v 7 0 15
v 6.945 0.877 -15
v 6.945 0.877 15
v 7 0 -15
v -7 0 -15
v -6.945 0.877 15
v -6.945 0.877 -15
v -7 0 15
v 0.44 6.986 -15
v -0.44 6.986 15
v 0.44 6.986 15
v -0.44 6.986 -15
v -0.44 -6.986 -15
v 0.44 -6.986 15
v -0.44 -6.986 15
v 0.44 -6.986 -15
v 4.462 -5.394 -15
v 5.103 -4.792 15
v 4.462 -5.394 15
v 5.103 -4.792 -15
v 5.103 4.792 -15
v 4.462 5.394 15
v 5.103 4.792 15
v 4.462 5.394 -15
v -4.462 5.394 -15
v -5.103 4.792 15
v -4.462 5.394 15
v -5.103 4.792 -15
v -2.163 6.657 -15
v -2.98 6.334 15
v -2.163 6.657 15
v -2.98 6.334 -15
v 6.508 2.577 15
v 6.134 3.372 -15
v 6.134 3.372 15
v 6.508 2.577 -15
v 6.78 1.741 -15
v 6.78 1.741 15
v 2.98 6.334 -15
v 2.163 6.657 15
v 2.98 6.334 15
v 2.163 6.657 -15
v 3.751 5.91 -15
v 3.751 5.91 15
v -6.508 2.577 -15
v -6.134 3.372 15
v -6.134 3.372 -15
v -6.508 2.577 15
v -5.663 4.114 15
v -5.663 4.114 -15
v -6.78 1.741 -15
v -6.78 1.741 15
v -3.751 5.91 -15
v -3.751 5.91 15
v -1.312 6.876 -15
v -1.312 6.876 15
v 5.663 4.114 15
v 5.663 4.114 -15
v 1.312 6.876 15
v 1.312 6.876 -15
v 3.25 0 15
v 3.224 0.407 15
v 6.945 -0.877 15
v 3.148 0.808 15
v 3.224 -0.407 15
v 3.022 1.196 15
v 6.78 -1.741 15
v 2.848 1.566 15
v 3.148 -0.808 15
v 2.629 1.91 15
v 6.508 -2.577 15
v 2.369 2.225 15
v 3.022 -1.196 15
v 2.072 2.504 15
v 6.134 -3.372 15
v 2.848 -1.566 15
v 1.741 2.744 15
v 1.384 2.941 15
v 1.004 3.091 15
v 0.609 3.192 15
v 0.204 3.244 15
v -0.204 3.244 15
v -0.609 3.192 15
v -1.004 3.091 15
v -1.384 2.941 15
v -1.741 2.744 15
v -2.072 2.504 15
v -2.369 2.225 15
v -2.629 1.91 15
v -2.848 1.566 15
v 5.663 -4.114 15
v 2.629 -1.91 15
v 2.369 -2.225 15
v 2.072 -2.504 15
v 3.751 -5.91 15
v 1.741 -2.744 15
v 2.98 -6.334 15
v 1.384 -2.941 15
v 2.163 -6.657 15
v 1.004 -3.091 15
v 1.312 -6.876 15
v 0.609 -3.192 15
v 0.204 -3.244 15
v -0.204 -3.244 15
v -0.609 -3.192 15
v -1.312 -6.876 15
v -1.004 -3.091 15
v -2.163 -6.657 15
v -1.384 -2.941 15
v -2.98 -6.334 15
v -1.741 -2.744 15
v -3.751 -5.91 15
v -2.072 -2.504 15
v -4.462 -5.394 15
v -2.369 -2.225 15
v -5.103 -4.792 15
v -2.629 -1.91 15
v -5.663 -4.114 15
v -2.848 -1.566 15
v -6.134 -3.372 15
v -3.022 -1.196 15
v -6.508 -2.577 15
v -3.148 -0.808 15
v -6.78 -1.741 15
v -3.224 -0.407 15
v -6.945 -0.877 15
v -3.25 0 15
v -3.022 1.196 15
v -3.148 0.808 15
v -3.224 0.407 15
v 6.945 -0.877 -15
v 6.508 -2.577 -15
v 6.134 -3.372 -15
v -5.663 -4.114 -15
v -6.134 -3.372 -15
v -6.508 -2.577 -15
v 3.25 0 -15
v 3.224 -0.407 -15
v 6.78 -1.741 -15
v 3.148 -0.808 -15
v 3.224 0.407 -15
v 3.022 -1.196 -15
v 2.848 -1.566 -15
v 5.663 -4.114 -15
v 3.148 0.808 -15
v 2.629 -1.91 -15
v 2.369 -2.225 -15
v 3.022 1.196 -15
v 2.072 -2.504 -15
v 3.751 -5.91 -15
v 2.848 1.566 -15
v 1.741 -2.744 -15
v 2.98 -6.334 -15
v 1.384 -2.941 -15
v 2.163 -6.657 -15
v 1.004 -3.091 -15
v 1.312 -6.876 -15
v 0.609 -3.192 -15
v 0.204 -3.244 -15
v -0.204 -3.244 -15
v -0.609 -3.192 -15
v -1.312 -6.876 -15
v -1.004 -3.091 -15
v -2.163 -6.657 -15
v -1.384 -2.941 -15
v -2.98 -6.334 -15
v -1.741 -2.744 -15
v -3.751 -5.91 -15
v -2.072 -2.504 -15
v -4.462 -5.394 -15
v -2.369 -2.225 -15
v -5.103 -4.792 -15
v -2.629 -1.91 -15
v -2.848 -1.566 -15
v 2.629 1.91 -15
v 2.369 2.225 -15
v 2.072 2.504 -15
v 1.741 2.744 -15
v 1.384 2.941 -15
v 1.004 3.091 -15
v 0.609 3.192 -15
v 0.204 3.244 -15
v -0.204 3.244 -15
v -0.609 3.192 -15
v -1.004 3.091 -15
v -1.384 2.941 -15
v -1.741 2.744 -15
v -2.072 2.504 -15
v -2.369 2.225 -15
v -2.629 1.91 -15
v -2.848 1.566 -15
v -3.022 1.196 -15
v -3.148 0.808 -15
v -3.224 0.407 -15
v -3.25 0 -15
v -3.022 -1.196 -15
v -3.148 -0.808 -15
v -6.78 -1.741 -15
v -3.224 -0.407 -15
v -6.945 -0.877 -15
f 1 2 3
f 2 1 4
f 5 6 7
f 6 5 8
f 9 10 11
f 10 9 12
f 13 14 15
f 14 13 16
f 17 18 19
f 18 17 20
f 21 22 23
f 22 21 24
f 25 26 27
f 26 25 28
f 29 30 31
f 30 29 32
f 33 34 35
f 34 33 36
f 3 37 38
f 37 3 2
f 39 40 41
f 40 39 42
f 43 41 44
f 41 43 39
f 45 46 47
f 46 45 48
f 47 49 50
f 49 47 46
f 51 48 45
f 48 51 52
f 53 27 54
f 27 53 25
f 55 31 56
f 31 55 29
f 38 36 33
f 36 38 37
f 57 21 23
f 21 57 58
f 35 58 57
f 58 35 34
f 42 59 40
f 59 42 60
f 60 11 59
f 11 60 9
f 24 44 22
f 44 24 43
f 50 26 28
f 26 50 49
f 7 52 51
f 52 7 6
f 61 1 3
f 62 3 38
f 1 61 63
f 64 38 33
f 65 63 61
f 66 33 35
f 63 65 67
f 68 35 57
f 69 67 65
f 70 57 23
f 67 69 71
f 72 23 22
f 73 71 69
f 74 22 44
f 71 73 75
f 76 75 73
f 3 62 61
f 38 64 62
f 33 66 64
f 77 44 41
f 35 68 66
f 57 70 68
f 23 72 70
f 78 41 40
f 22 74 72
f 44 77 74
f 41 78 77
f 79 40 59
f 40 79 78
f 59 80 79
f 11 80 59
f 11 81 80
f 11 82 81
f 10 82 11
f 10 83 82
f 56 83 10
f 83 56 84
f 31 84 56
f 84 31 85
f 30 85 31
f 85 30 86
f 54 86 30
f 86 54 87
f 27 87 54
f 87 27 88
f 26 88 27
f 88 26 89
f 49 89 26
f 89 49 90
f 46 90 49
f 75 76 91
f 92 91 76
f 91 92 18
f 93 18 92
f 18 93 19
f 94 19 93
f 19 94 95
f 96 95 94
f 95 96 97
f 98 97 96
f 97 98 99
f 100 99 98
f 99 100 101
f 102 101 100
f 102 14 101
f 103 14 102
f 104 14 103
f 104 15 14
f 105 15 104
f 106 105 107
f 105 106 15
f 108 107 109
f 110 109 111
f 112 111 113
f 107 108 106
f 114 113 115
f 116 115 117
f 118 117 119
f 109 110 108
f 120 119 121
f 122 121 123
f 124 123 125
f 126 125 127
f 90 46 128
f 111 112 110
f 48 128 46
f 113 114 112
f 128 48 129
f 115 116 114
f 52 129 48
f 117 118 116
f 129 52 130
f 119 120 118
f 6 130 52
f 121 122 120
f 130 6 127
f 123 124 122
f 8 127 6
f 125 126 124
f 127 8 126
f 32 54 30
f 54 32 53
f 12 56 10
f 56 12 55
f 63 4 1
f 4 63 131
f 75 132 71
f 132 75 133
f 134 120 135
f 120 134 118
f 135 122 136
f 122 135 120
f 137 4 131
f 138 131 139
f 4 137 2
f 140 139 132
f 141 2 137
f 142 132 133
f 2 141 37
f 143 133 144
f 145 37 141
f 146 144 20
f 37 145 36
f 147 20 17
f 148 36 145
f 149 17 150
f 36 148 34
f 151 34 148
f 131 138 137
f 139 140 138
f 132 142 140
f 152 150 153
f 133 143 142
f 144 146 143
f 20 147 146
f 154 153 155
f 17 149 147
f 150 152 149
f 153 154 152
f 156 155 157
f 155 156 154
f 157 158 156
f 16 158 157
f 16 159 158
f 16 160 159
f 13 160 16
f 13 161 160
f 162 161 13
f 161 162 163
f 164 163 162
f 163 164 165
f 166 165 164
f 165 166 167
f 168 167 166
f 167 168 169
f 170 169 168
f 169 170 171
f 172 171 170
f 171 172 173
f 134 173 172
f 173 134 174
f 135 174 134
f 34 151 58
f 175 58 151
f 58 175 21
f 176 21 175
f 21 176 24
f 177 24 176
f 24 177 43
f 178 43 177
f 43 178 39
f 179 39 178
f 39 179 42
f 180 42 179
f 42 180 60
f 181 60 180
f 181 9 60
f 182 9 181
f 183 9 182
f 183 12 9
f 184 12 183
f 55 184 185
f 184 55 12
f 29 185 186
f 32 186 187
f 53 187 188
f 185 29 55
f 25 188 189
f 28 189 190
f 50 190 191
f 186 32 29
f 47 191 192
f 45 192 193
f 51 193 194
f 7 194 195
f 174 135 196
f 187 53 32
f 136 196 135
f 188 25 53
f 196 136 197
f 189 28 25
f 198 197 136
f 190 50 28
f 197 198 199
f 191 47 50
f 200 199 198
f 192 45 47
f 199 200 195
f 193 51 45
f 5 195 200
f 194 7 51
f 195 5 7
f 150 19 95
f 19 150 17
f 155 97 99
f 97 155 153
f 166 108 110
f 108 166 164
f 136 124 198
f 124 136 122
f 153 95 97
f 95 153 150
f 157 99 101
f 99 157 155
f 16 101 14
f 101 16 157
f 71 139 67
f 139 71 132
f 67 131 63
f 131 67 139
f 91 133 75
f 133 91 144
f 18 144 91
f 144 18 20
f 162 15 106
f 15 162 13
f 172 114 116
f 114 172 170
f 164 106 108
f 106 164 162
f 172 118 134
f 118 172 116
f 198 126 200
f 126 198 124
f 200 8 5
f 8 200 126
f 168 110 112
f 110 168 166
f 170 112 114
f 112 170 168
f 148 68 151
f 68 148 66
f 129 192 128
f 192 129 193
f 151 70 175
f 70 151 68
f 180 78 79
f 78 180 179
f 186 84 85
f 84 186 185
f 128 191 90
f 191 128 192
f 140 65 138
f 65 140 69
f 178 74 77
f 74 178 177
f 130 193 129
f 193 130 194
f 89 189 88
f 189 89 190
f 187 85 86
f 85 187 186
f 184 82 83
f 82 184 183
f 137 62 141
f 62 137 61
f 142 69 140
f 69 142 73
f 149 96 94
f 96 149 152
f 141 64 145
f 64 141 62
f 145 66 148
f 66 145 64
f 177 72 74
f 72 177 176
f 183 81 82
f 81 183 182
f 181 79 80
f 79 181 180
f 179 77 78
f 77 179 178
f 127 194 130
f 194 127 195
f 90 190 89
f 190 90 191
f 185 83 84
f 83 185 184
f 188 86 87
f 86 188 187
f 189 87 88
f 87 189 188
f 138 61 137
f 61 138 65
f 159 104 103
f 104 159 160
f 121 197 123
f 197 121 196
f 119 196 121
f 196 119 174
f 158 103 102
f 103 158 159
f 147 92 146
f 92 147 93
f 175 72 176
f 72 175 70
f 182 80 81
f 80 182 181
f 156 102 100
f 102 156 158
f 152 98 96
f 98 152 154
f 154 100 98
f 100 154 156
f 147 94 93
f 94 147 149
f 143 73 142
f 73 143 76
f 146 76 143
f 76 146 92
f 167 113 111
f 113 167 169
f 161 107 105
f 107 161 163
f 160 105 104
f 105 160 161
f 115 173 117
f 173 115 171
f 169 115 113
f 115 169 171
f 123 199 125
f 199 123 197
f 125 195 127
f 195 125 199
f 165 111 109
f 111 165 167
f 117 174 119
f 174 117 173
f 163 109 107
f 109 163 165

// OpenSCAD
$fn = 50;


difference() {
	union() {
		translate(v = [0, 0, -15.0000000000]) {
			cylinder(h = 30, r = 7.0000000000);
		}
	}
	union() {
		translate(v = [0, 0, -100.0000000000]) {
			cylinder(h = 200, r = 3.2500000000);
		}
	}
}
